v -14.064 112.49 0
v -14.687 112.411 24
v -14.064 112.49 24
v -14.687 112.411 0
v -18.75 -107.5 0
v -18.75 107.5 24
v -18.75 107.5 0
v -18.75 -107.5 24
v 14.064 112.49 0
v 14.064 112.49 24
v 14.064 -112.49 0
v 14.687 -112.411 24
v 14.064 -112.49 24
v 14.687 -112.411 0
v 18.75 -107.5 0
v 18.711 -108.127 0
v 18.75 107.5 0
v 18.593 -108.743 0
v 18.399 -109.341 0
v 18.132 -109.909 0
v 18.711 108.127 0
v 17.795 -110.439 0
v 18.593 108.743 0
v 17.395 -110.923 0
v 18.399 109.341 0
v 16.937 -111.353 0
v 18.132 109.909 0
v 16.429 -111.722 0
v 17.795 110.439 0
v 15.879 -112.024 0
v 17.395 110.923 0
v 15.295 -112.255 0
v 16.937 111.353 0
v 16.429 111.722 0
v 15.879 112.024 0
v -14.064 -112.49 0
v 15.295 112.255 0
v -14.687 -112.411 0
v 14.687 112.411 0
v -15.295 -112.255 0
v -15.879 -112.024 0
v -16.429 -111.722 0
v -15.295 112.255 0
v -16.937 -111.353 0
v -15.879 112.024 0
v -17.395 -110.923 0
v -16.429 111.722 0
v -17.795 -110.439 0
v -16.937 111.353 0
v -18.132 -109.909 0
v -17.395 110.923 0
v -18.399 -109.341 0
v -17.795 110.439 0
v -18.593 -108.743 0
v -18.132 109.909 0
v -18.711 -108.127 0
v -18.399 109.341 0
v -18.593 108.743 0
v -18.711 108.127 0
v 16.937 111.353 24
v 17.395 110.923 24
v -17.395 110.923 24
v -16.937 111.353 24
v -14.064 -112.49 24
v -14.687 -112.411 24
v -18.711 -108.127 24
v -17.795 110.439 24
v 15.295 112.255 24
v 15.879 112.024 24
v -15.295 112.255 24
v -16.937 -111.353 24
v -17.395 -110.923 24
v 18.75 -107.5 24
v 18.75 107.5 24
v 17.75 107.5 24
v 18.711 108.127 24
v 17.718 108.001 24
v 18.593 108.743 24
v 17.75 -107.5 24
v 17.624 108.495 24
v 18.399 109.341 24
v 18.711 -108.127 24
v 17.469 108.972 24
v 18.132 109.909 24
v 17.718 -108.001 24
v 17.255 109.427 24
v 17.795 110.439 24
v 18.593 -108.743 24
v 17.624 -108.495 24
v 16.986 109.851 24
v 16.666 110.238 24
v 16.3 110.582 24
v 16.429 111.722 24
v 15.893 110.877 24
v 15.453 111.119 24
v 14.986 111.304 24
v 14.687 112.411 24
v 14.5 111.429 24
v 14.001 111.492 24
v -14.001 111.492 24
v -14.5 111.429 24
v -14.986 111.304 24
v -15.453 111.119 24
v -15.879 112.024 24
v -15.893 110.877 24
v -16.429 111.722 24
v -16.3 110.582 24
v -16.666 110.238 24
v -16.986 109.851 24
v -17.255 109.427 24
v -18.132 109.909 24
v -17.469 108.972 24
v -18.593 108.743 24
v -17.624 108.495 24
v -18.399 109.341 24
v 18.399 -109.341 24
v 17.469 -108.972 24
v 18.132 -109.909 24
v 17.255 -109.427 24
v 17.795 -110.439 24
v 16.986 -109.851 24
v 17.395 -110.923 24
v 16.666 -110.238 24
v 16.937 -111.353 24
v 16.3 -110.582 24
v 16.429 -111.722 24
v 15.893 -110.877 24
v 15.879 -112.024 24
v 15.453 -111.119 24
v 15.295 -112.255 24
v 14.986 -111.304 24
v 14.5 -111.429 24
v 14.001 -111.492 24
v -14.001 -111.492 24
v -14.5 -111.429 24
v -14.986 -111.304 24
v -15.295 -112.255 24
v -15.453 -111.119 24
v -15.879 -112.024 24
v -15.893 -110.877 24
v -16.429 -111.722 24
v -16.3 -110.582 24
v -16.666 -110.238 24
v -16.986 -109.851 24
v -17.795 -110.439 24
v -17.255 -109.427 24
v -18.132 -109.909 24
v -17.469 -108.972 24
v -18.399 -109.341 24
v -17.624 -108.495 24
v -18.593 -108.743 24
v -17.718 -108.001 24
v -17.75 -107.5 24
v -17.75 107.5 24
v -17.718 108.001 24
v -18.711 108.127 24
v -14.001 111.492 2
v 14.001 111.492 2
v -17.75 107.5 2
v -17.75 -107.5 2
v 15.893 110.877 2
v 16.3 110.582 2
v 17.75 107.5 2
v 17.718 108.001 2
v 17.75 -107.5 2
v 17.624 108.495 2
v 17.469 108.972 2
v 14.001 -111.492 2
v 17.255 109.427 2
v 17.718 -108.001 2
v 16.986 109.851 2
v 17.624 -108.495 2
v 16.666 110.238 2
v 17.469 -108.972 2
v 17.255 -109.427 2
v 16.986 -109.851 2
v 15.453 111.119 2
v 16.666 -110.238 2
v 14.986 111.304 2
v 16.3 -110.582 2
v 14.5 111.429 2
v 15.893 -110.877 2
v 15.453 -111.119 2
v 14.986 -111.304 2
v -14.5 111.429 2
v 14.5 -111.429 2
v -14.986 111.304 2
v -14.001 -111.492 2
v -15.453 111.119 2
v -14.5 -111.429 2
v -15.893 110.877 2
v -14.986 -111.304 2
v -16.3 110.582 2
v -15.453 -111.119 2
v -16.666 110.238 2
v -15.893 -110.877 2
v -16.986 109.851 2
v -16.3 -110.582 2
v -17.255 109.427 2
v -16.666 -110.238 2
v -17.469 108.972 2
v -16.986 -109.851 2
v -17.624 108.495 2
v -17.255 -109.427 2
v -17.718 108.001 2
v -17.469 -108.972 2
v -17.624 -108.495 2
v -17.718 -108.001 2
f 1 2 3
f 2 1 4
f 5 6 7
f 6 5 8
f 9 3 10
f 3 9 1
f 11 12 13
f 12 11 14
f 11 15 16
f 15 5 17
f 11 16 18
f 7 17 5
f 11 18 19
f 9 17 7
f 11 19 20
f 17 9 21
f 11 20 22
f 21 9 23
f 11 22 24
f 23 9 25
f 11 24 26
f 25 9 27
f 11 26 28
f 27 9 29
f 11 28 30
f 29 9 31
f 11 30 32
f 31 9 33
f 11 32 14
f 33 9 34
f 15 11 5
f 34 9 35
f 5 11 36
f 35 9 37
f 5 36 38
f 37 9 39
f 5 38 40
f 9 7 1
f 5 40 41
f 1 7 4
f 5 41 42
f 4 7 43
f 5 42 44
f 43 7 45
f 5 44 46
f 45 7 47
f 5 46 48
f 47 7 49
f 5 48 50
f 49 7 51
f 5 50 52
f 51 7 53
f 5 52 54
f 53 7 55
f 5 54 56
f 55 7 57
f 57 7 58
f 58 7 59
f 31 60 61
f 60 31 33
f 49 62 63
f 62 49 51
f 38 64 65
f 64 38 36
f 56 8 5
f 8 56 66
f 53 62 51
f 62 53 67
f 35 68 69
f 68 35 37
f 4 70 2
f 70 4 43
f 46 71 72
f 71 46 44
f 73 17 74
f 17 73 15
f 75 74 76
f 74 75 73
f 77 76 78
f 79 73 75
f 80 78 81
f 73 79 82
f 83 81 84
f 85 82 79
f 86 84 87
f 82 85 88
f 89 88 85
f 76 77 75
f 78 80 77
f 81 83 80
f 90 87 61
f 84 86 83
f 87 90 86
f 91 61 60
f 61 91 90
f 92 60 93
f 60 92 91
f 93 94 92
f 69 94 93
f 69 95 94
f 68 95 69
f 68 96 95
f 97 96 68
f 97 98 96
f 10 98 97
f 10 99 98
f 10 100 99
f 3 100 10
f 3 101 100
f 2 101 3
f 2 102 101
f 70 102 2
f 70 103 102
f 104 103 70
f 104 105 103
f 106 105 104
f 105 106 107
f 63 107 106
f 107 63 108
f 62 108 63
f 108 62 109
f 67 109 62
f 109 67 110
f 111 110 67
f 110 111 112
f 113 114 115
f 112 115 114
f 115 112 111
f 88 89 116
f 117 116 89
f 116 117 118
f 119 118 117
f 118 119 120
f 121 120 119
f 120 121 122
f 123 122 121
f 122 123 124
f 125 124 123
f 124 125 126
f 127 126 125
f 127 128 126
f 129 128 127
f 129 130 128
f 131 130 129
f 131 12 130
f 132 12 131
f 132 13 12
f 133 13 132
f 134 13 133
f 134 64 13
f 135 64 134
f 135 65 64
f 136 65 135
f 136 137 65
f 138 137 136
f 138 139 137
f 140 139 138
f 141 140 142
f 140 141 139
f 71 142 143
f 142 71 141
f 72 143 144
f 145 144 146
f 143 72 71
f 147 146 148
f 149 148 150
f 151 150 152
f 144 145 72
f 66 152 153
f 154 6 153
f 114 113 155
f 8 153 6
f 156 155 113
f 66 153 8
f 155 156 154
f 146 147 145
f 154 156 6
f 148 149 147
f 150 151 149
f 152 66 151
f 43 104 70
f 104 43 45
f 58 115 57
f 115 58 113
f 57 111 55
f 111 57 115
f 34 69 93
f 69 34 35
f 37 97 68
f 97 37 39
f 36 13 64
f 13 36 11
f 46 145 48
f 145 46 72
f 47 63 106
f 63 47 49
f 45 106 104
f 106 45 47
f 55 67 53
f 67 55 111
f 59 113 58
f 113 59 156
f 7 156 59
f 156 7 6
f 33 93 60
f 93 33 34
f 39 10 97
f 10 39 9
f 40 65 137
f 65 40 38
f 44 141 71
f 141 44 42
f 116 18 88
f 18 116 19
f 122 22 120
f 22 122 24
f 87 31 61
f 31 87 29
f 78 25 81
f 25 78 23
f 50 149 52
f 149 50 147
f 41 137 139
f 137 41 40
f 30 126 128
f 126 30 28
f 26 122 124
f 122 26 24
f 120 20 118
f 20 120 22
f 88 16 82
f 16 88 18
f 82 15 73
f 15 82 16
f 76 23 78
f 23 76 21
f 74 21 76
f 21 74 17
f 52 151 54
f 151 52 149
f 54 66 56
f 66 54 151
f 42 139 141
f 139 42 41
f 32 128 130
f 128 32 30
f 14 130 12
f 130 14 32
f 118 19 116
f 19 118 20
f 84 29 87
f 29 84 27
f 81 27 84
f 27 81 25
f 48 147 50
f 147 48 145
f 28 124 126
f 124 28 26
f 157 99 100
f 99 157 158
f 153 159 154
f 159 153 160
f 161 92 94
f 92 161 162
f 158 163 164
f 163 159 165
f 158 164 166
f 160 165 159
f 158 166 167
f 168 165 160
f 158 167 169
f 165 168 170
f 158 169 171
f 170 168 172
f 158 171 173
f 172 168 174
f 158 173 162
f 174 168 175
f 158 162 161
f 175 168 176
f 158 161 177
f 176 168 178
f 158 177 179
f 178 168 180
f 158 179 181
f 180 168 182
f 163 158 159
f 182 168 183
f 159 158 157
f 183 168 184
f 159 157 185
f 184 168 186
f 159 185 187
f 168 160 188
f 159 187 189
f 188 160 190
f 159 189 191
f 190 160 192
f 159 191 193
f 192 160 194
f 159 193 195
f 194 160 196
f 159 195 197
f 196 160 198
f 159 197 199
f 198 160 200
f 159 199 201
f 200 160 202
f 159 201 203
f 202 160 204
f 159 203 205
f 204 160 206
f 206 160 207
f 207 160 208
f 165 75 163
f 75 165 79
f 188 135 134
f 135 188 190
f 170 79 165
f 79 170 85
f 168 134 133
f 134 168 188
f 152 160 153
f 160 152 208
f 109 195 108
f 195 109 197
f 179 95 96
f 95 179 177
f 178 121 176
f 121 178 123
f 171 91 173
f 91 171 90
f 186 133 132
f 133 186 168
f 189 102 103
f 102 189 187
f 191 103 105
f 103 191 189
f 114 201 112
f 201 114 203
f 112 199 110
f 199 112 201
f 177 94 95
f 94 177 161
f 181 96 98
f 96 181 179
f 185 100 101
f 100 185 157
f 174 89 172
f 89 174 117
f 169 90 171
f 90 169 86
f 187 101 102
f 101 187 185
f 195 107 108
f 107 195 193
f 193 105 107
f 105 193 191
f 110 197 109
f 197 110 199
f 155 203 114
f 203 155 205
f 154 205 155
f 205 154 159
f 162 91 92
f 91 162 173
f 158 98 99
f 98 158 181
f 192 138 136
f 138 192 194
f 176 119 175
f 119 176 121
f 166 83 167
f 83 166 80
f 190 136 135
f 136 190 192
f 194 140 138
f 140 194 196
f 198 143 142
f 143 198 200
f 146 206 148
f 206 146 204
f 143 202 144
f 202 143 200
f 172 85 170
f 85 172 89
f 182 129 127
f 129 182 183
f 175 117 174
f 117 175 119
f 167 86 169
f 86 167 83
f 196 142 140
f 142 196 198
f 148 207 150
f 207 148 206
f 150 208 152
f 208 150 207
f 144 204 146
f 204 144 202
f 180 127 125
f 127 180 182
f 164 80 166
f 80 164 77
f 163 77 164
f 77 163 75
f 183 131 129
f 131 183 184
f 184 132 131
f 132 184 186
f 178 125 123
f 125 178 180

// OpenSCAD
$fn = 50;


difference() {
	union() {
		hull() {
			translate(v = [-13.7500000000, 107.5000000000, 0]) {
				cylinder(h = 24, r = 5);
			}
			translate(v = [13.7500000000, 107.5000000000, 0]) {
				cylinder(h = 24, r = 5);
			}
			translate(v = [-13.7500000000, -107.5000000000, 0]) {
				cylinder(h = 24, r = 5);
			}
			translate(v = [13.7500000000, -107.5000000000, 0]) {
				cylinder(h = 24, r = 5);
			}
		}
	}
	union() {
		translate(v = [0, 0, 2]) {
			hull() {
				translate(v = [-13.7500000000, 107.5000000000, 0]) {
					cylinder(h = 22, r = 4);
				}
				translate(v = [13.7500000000, 107.5000000000, 0]) {
					cylinder(h = 22, r = 4);
				}
				translate(v = [-13.7500000000, -107.5000000000, 0]) {
					cylinder(h = 22, r = 4);
				}
				translate(v = [13.7500000000, -107.5000000000, 0]) {
					cylinder(h = 22, r = 4);
				}
			}
		}
	}
}
